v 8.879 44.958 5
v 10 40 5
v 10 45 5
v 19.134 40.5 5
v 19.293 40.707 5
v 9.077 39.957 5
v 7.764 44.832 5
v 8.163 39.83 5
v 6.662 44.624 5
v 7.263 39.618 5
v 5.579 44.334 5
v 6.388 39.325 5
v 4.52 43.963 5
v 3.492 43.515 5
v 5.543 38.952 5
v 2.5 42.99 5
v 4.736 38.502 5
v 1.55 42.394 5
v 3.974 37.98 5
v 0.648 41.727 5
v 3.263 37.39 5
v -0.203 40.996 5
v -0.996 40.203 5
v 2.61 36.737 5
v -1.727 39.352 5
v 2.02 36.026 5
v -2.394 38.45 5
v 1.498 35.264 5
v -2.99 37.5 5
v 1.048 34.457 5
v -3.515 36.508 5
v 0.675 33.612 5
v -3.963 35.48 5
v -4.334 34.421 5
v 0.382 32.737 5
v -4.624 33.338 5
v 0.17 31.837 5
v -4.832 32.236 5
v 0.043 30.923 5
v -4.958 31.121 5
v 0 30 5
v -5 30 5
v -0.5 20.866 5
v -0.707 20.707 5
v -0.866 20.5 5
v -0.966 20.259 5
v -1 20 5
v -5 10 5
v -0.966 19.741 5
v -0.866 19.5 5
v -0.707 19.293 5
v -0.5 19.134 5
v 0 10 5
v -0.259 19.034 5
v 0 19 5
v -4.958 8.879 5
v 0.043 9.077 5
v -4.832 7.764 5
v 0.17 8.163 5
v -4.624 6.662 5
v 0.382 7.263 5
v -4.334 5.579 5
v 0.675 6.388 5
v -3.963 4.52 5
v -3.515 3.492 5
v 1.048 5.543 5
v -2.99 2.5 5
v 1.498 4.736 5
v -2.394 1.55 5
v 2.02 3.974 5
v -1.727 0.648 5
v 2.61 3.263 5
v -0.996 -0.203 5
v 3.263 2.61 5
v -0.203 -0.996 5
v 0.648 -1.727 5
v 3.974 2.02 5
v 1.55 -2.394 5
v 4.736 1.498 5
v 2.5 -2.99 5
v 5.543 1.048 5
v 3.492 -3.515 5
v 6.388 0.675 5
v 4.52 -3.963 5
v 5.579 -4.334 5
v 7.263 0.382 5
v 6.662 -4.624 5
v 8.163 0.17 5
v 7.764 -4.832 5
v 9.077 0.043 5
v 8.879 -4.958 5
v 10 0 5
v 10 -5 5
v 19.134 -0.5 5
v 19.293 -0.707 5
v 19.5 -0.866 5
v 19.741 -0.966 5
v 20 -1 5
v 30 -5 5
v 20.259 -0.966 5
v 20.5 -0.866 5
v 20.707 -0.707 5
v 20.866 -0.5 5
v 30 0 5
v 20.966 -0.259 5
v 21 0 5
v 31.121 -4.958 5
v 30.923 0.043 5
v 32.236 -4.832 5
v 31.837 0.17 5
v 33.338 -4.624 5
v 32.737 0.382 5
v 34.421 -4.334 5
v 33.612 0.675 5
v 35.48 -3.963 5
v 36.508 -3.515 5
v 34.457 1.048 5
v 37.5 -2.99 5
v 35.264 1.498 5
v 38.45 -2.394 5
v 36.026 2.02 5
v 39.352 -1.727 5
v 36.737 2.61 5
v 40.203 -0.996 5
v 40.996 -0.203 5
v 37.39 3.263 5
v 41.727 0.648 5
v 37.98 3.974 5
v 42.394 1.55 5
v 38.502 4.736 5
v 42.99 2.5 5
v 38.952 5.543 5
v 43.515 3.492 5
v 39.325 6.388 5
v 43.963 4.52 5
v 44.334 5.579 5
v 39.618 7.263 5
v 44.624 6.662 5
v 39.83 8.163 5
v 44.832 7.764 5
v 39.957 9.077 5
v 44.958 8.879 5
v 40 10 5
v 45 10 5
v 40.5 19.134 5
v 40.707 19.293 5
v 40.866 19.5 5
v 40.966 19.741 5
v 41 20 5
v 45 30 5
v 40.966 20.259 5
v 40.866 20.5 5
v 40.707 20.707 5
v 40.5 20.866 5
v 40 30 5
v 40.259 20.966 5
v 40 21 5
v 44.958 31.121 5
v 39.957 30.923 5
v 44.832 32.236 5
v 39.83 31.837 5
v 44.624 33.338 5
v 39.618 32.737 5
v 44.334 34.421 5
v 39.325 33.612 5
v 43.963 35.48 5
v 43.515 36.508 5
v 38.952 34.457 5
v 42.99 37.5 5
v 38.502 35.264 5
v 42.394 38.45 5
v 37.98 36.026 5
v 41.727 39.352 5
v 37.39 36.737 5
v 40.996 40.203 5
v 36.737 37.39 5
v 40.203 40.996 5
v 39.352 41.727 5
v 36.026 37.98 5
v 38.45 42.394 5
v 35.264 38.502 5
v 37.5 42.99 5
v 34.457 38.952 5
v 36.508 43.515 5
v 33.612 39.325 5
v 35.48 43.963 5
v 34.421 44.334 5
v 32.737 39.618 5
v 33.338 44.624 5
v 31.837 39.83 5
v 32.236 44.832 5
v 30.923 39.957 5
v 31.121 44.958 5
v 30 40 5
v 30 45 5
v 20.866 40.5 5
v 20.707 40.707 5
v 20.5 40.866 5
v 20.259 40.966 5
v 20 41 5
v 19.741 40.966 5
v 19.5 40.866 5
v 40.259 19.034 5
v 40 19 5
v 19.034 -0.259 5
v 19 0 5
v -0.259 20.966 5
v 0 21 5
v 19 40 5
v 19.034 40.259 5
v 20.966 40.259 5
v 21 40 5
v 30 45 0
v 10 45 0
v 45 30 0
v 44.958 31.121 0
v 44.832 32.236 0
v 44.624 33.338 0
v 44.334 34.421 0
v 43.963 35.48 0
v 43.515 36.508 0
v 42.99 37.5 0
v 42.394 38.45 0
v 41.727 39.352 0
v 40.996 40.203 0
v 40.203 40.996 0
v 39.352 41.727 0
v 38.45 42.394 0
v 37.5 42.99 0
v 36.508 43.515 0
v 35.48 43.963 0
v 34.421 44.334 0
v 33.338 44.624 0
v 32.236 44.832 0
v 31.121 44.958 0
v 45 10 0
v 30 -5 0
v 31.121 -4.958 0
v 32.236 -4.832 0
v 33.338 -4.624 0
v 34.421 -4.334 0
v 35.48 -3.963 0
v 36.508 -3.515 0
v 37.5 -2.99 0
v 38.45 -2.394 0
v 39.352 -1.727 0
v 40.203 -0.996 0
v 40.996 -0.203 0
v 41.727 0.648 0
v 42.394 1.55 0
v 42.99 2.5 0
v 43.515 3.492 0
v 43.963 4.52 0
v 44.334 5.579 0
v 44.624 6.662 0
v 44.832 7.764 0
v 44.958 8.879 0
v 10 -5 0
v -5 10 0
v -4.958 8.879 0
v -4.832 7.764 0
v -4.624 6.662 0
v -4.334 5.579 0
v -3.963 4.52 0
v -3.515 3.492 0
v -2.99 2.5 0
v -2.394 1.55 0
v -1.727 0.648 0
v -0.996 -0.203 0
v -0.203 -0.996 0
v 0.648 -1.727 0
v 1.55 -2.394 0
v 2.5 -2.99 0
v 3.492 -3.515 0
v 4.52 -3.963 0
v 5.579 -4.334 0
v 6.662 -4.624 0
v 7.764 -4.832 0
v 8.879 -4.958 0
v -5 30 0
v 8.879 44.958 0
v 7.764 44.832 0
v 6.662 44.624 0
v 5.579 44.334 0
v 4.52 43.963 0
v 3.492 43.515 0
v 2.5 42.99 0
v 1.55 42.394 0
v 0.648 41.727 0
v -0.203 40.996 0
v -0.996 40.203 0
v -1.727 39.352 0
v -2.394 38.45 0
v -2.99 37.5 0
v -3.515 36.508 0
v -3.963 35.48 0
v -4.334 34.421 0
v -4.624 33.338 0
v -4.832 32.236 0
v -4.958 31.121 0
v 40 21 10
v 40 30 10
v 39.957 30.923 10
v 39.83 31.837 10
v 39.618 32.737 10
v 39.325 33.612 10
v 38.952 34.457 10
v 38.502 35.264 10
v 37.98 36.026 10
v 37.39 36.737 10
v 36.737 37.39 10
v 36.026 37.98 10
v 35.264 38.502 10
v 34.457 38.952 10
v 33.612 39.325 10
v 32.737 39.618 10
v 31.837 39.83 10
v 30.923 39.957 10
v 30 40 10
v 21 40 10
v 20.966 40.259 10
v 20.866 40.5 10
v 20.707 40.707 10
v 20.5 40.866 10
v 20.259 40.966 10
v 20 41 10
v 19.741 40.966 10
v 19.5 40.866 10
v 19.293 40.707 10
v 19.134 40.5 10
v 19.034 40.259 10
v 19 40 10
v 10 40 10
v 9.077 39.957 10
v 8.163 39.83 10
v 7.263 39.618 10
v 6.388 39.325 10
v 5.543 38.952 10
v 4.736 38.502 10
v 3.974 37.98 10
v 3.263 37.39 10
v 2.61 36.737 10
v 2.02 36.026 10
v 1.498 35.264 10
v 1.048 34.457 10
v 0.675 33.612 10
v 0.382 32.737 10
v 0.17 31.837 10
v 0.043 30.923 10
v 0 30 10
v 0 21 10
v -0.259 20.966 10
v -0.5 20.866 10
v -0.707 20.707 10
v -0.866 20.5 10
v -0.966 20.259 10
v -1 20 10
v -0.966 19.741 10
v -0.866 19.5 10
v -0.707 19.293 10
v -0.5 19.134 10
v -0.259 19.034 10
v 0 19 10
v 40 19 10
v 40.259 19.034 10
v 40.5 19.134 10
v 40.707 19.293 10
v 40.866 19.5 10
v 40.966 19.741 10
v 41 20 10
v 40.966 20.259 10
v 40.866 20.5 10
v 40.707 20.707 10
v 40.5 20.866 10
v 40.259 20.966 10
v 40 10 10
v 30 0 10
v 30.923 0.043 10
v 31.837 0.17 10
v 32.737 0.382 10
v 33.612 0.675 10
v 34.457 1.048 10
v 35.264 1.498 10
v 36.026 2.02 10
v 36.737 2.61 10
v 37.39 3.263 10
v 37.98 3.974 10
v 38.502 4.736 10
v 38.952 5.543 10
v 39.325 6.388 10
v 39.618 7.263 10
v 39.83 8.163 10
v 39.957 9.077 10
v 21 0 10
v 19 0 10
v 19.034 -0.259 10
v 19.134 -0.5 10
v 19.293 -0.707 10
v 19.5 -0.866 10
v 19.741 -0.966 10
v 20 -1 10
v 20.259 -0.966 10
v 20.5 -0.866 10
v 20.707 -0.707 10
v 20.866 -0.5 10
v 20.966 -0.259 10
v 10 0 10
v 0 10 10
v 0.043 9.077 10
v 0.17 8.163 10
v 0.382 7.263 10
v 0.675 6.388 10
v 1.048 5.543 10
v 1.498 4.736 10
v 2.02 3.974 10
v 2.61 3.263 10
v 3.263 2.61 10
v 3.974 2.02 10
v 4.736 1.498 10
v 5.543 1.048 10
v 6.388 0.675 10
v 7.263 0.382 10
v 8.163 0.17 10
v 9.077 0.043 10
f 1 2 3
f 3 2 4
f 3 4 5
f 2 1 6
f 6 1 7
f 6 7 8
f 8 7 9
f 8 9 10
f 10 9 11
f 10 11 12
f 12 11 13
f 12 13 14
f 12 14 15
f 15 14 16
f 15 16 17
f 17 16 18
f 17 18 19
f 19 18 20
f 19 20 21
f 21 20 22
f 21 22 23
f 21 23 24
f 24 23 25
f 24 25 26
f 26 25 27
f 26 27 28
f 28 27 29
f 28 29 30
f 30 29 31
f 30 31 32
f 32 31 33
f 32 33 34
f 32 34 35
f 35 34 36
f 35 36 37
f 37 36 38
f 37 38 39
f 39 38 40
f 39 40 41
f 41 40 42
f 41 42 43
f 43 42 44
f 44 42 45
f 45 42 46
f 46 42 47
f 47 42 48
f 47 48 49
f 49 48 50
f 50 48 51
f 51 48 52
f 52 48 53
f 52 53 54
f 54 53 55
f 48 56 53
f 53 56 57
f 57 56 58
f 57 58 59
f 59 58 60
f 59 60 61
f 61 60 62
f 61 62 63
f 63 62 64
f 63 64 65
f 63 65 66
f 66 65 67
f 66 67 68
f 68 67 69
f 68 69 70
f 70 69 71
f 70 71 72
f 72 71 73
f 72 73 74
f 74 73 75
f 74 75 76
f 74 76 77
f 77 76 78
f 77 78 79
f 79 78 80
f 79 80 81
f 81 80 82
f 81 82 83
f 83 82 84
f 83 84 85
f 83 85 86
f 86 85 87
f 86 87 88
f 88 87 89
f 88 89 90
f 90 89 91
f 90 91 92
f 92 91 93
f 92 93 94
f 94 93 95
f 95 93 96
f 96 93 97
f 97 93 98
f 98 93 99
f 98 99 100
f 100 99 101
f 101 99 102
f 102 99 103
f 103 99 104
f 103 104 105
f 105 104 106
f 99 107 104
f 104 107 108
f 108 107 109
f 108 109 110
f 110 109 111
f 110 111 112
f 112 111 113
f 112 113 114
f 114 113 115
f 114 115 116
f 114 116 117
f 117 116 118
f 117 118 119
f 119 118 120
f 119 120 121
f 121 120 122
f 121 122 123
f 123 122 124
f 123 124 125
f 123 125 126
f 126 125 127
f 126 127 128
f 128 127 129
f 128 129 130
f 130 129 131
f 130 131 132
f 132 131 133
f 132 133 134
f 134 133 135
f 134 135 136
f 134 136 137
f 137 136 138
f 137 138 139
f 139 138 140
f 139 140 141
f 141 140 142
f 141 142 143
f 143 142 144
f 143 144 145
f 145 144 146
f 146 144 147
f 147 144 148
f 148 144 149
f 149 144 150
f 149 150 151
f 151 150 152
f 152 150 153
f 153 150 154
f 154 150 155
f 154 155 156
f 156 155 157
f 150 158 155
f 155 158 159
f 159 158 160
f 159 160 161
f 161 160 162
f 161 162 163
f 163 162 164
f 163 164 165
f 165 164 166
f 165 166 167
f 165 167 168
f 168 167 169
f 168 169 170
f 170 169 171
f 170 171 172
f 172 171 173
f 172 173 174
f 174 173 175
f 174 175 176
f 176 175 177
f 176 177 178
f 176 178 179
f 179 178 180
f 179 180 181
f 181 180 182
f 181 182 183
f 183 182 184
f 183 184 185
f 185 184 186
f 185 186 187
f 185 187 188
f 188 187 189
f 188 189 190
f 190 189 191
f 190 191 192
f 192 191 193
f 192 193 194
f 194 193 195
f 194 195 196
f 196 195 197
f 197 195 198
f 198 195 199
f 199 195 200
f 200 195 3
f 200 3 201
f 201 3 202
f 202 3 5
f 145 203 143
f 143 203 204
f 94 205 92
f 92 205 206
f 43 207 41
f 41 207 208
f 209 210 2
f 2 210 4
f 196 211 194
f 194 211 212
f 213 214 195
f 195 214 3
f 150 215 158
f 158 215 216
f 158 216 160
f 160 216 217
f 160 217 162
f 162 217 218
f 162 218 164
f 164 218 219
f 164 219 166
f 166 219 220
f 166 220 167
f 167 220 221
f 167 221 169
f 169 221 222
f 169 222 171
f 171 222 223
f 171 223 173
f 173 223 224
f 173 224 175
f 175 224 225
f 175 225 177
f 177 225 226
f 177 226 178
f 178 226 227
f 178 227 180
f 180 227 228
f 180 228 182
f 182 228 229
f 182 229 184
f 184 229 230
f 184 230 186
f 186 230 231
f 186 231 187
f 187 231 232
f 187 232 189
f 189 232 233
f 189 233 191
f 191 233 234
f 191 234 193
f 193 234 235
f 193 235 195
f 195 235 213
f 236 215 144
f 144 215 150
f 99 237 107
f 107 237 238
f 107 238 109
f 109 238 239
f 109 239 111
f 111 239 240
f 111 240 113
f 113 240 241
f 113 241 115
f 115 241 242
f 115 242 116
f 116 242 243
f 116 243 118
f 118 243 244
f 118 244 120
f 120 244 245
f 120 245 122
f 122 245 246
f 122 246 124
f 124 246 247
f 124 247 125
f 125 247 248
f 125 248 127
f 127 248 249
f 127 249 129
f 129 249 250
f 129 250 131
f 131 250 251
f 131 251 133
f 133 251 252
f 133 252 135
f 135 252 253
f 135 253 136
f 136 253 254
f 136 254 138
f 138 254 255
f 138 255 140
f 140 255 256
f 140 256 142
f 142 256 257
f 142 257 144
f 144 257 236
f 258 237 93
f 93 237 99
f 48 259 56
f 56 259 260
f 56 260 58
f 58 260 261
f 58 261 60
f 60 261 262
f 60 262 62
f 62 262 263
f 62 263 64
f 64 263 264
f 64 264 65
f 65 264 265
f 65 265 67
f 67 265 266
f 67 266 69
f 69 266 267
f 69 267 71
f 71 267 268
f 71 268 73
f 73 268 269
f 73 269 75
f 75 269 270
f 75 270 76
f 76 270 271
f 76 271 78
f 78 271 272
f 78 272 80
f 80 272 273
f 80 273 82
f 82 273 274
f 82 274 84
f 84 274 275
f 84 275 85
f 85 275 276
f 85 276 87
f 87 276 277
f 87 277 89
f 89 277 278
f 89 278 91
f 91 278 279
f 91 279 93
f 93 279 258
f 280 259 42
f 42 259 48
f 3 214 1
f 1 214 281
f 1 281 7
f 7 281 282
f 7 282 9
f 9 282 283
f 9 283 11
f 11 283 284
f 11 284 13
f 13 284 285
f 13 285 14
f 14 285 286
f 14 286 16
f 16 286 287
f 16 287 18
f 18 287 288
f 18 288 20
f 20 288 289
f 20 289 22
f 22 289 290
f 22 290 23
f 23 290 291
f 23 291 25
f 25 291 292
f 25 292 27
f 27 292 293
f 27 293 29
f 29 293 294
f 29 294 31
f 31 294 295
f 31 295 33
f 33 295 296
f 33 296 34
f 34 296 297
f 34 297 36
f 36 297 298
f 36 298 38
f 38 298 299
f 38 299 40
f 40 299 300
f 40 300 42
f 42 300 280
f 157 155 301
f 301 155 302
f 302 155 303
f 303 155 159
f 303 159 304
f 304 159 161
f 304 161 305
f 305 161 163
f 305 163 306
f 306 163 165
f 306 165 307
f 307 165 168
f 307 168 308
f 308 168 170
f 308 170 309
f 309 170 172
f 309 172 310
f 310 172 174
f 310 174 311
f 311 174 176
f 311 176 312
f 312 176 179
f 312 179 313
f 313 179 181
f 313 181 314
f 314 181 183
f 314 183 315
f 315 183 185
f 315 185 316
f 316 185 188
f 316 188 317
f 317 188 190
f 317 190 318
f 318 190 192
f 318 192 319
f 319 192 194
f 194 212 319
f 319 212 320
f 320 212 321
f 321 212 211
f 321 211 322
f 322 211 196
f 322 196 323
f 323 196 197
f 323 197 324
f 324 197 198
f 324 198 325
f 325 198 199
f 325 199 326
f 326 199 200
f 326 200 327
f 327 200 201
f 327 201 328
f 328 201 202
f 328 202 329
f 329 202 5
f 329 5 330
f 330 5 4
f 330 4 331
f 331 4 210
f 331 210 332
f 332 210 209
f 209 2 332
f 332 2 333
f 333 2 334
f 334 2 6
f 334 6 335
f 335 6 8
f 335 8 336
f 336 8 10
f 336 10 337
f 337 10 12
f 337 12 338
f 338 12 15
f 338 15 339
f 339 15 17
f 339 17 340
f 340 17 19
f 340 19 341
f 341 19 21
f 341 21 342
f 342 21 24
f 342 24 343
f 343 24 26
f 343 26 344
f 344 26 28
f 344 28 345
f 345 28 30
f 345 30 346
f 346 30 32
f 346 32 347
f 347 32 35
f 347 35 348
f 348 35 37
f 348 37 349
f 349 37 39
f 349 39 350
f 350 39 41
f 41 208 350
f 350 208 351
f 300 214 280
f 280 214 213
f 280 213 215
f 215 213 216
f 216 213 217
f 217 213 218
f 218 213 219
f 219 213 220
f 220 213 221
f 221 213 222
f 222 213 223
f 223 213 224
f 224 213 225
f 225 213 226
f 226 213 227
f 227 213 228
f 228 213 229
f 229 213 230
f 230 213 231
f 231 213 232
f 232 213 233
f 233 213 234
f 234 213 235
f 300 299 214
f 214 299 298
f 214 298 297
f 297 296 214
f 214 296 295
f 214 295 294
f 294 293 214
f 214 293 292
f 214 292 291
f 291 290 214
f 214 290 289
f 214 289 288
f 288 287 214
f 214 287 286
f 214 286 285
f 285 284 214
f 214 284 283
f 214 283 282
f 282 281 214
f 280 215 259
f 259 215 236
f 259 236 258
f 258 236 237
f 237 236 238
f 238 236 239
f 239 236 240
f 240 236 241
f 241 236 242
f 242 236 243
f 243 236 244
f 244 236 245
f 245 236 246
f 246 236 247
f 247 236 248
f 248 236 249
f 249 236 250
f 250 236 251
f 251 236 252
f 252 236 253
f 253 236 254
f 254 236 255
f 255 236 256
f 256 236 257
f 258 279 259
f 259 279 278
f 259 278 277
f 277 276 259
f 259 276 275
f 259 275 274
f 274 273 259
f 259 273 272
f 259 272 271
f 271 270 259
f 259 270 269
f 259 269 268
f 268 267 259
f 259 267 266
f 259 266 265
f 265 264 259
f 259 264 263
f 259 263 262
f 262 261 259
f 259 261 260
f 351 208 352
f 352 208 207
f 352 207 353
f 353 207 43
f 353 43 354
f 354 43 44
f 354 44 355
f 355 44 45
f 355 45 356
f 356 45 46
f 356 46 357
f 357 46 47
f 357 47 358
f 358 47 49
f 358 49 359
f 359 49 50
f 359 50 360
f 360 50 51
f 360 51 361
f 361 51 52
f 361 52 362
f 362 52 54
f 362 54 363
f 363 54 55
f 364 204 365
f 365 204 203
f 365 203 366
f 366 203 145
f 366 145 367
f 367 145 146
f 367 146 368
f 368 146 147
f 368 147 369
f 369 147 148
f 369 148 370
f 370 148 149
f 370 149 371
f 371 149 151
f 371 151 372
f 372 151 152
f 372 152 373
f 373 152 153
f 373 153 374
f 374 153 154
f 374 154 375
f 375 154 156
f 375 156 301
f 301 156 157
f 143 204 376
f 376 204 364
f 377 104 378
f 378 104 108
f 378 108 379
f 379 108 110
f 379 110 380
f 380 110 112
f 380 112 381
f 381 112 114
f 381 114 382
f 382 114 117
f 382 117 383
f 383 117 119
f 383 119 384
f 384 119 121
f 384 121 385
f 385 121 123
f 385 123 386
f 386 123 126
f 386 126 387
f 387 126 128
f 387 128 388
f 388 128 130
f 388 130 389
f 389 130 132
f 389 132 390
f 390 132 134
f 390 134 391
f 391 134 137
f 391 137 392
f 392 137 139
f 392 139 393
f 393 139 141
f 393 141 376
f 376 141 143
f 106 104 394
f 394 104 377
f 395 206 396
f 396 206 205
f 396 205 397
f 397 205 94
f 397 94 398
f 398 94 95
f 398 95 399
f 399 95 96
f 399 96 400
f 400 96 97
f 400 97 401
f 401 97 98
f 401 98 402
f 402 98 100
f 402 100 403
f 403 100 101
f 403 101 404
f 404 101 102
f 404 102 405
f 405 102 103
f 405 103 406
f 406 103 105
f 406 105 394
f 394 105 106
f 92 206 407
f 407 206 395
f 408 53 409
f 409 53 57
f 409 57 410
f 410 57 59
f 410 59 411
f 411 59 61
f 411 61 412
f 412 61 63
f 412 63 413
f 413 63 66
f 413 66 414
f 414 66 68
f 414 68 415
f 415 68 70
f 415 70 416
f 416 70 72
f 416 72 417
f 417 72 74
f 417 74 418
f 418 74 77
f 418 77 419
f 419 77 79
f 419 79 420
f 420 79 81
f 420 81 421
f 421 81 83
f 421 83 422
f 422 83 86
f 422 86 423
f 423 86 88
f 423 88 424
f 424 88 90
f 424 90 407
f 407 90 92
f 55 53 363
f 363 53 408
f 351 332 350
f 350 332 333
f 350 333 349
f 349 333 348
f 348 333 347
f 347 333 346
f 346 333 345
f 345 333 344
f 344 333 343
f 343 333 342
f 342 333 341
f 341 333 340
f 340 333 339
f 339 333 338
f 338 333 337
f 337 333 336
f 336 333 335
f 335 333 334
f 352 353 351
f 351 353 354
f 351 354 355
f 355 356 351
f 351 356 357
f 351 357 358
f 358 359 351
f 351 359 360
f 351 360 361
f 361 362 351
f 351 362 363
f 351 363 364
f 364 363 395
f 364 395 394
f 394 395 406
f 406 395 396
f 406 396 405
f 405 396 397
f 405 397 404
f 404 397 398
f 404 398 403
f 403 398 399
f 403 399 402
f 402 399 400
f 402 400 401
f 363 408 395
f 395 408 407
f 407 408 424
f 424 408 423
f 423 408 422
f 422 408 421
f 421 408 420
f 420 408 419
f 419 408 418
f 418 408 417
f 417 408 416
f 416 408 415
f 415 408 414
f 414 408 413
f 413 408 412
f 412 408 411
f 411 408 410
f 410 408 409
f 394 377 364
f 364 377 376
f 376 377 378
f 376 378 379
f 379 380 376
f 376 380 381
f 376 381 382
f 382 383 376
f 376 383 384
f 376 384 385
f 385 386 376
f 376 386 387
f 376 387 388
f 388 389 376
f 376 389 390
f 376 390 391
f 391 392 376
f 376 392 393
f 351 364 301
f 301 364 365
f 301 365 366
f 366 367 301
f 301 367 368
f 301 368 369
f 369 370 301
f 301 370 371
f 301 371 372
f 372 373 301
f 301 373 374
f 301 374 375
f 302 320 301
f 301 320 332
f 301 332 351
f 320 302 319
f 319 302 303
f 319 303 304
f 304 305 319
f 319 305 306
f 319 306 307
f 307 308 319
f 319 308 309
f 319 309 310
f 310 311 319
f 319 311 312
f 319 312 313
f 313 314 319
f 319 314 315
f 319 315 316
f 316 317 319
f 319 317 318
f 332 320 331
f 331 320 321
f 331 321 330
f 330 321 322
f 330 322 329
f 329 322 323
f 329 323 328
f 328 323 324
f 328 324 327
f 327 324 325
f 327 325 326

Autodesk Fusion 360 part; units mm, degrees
sketch "Sketch1" plane through (0, 0, 0) normal (0, 0, 1) x (1, 0, 0)
  line L0 (10, 0) -> (30, 0)
  line L1 (40, 10) -> (40, 30)
  line L2 (30, 40) -> (10, 40)
  line L3 (0, 30) -> (0, 10)
  line L4 (10, -5) -> (30, -5)
  line L5 (45, 10) -> (45, 30)
  line L6 (30, 45) -> (10, 45)
  line L7 (-5, 30) -> (-5, 10)
  arc A0 (10, 40) -> (0, 30) centre (10, 30) ccw
  arc A1 (40, 30) -> (30, 40) centre (30, 30) ccw
  arc A2 (30, 0) -> (40, 10) centre (30, 10) ccw
  arc A3 (0, 10) -> (10, 0) centre (10, 10) ccw
  arc A4 (45, 30) -> (30, 45) centre (30, 30) ccw
  arc A5 (30, -5) -> (45, 10) centre (30, 10) ccw
  arc A6 (-5, 10) -> (10, -5) centre (10, 10) ccw
  arc A7 (10, 45) -> (-5, 30) centre (10, 30) ccw
  circle A8 centre (20, 0) radius 1
  circle A9 centre (40, 20) radius 1
  circle A10 centre (20, 40) radius 1
  circle A11 centre (0, 20) radius 1
  point P0 (40, 0)
  point P1 (0, 40)
  dimension "d1" = 40
  dimension "d2" = 40
  dimension "d3" = 10
  dimension "d4" = 15
extrude "Extrude1" add sketch "Sketch1" along normal blind 10 contours L0 L1 L2 L3 A0 A1 A2 A3 A8 A9 A10 A11 | L0 A8 | L0 A8 | L1 A9 | L1 A9 | L3 A11 | L3 A11 | L2 A10 | L2 A10
extrude "Extrude2" add sketch "Sketch1" along normal blind 5 contours L0 A8 | L1 A9 | L3 A11 | L2 A10 | L4 L5 L6 L7 A4 A5 A6 A7 picked at (19.774, -0.5035) picked at (40.3032, 20.1385) picked at (-0.4549, 20.2371) picked at (20.2754, 40.3843)
